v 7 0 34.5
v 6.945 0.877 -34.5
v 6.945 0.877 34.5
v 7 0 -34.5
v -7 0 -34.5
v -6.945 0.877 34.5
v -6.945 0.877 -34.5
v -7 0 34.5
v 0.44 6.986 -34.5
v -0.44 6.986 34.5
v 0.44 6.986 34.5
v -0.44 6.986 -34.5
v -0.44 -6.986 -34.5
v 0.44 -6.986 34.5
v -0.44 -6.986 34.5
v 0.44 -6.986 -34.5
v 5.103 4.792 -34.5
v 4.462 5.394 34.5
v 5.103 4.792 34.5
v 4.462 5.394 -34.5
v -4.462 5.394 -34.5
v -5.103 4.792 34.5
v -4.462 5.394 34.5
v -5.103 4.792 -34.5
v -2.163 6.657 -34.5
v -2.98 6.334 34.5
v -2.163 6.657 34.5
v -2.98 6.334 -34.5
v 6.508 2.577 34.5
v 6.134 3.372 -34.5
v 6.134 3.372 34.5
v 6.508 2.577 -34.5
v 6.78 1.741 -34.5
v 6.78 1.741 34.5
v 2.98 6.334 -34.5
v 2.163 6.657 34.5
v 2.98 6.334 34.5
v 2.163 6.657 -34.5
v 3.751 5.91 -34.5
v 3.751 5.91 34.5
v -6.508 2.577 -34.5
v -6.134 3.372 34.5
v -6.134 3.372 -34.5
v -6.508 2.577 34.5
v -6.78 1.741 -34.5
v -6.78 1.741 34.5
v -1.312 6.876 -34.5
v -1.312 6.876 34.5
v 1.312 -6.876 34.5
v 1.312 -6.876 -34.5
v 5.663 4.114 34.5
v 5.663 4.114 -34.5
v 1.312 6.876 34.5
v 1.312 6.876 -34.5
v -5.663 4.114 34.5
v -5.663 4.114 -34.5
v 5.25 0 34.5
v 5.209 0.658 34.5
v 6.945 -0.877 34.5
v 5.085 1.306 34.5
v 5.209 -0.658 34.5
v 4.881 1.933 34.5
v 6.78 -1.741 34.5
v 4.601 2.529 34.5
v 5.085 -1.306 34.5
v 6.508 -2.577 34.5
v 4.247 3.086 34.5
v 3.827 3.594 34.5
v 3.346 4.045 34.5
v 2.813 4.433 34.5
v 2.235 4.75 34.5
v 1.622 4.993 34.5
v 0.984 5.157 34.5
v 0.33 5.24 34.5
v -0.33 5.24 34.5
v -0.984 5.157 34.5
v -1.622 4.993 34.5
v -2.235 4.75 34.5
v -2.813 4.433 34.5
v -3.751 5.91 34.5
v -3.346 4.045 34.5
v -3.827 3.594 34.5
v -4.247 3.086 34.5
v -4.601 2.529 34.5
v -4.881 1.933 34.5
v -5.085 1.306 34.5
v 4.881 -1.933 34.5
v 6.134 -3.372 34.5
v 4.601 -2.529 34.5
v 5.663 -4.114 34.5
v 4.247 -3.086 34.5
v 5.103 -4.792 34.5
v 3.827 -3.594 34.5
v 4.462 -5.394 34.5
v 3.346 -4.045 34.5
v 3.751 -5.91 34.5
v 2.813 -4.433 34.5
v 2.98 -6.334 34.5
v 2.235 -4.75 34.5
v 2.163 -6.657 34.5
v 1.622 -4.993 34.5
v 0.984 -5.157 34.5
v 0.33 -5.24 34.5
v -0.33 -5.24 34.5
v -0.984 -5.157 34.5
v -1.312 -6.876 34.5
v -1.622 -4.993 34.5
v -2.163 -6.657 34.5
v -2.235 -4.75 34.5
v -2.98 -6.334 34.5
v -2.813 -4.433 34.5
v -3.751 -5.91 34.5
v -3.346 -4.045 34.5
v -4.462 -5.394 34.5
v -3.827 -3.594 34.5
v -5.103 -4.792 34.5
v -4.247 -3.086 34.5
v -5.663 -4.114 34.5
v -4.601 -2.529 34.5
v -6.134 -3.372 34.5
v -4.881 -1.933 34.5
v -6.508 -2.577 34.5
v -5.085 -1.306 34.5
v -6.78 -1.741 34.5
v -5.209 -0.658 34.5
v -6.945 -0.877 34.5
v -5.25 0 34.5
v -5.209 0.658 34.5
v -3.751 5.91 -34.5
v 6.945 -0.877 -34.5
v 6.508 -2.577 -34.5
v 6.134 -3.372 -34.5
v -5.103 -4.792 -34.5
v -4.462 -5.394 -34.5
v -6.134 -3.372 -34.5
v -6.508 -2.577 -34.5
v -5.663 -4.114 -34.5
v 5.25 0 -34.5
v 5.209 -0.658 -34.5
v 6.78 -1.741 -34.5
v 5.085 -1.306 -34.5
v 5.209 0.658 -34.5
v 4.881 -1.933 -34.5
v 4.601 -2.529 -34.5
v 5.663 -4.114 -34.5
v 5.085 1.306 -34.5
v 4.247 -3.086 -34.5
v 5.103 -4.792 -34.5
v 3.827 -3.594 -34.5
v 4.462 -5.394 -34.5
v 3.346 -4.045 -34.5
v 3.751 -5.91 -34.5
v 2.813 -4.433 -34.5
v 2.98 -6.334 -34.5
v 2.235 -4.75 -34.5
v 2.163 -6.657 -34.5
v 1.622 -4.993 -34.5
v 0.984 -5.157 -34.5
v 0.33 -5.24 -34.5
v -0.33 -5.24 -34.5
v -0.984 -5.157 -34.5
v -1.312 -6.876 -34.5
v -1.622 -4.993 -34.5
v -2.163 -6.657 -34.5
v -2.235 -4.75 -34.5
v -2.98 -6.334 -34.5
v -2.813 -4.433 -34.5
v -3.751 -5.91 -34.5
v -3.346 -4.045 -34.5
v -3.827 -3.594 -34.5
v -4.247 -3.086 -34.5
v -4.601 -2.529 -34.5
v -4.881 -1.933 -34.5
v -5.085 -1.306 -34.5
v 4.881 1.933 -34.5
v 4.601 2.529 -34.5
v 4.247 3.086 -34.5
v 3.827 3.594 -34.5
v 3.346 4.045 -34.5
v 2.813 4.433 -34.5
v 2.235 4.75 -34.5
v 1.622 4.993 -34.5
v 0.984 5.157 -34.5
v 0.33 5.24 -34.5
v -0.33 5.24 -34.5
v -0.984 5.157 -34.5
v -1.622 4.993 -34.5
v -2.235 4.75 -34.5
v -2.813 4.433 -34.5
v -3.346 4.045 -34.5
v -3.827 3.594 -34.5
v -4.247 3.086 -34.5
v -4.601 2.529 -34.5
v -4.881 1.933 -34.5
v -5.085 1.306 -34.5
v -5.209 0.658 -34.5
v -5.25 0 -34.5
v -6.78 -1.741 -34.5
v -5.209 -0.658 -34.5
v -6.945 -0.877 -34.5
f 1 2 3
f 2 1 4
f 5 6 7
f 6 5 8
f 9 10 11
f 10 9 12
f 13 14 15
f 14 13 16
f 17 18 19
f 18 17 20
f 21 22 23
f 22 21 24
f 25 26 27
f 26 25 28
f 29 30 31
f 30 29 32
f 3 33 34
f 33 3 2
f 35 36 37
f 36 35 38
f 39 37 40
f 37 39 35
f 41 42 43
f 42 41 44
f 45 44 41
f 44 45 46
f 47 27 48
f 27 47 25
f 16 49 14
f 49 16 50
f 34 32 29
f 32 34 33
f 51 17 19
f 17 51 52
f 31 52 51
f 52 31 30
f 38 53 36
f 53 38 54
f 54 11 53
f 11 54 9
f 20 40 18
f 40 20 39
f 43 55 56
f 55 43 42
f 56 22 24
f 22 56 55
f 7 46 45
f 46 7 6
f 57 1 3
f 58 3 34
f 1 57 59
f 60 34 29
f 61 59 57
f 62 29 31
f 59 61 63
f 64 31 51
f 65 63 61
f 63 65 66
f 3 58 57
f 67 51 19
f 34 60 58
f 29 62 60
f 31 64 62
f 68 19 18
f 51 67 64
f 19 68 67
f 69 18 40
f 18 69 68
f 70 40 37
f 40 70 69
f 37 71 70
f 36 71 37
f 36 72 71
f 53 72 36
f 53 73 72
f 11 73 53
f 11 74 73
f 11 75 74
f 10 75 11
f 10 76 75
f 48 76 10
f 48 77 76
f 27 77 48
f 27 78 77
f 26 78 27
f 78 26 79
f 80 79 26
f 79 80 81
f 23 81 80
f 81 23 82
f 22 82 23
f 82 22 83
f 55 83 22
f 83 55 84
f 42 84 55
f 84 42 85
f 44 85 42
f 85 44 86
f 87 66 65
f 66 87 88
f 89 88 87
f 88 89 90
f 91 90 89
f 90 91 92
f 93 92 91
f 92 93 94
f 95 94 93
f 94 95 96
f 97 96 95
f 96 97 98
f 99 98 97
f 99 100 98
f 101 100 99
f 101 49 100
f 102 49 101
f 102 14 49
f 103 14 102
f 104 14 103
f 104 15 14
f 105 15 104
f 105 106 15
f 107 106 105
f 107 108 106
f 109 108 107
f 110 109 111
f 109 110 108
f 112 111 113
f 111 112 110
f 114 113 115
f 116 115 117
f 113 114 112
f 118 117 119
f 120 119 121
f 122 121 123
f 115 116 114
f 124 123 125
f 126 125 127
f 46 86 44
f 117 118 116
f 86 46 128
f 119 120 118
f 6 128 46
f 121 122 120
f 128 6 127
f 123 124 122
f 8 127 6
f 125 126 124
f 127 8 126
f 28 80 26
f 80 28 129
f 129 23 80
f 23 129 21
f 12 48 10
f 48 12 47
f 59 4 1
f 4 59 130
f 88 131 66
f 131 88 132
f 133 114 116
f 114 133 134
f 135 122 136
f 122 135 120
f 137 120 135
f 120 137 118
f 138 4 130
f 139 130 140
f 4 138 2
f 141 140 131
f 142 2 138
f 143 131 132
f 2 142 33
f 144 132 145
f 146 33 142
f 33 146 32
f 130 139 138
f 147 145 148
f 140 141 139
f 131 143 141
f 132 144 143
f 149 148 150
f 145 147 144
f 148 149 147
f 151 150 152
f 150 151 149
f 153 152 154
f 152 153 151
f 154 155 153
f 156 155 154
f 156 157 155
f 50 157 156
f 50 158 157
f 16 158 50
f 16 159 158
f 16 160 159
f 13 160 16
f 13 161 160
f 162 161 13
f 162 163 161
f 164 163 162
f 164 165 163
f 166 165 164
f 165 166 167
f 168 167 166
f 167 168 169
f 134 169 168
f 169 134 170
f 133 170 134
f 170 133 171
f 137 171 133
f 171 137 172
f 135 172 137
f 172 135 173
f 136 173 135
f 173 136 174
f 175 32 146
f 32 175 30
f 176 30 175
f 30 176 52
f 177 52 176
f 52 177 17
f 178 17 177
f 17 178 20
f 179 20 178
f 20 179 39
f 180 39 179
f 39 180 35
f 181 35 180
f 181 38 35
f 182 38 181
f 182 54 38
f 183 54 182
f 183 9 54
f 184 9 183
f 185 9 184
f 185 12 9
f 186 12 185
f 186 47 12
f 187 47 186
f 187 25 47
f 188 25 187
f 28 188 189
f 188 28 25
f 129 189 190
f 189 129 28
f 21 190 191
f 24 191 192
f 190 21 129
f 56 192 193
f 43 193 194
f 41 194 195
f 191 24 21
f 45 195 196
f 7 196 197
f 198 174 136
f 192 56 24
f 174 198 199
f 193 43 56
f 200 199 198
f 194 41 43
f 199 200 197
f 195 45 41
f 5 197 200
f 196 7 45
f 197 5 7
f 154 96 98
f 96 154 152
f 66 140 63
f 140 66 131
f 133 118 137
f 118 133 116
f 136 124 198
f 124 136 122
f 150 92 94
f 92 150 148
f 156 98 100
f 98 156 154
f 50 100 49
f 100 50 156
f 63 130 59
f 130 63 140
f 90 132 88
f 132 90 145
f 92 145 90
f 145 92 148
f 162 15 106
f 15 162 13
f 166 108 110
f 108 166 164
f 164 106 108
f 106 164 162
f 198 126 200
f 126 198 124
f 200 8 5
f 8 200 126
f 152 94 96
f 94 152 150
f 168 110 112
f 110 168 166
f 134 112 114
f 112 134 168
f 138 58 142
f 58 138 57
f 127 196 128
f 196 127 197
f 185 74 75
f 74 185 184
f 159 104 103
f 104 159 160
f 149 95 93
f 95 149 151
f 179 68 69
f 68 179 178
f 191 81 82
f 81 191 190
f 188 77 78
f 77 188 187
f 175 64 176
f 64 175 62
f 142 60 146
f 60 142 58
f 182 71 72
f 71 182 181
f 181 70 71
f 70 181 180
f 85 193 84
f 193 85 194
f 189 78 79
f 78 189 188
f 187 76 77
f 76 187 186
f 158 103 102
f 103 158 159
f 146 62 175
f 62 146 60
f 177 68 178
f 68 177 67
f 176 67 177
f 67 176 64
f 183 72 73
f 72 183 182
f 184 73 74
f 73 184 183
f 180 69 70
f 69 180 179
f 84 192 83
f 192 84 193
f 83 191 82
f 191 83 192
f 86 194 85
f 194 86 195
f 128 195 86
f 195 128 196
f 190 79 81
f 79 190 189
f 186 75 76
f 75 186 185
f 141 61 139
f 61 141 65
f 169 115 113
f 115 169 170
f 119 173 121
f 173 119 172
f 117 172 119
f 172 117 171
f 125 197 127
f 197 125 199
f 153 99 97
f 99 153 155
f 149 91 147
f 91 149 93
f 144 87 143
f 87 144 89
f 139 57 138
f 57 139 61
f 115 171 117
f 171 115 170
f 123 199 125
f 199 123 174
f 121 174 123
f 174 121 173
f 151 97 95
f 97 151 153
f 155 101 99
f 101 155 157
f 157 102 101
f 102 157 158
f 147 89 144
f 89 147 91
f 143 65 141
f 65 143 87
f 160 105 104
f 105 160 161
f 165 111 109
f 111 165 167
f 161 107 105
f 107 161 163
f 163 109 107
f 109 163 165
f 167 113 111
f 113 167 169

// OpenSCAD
$fn = 50;


difference() {
	union() {
		translate(v = [0, 0, -34.5000000000]) {
			cylinder(h = 69, r = 7.0000000000);
		}
	}
	union() {
		translate(v = [0, 0, -100.0000000000]) {
			cylinder(h = 200, r = 5.2500000000);
		}
	}
}
